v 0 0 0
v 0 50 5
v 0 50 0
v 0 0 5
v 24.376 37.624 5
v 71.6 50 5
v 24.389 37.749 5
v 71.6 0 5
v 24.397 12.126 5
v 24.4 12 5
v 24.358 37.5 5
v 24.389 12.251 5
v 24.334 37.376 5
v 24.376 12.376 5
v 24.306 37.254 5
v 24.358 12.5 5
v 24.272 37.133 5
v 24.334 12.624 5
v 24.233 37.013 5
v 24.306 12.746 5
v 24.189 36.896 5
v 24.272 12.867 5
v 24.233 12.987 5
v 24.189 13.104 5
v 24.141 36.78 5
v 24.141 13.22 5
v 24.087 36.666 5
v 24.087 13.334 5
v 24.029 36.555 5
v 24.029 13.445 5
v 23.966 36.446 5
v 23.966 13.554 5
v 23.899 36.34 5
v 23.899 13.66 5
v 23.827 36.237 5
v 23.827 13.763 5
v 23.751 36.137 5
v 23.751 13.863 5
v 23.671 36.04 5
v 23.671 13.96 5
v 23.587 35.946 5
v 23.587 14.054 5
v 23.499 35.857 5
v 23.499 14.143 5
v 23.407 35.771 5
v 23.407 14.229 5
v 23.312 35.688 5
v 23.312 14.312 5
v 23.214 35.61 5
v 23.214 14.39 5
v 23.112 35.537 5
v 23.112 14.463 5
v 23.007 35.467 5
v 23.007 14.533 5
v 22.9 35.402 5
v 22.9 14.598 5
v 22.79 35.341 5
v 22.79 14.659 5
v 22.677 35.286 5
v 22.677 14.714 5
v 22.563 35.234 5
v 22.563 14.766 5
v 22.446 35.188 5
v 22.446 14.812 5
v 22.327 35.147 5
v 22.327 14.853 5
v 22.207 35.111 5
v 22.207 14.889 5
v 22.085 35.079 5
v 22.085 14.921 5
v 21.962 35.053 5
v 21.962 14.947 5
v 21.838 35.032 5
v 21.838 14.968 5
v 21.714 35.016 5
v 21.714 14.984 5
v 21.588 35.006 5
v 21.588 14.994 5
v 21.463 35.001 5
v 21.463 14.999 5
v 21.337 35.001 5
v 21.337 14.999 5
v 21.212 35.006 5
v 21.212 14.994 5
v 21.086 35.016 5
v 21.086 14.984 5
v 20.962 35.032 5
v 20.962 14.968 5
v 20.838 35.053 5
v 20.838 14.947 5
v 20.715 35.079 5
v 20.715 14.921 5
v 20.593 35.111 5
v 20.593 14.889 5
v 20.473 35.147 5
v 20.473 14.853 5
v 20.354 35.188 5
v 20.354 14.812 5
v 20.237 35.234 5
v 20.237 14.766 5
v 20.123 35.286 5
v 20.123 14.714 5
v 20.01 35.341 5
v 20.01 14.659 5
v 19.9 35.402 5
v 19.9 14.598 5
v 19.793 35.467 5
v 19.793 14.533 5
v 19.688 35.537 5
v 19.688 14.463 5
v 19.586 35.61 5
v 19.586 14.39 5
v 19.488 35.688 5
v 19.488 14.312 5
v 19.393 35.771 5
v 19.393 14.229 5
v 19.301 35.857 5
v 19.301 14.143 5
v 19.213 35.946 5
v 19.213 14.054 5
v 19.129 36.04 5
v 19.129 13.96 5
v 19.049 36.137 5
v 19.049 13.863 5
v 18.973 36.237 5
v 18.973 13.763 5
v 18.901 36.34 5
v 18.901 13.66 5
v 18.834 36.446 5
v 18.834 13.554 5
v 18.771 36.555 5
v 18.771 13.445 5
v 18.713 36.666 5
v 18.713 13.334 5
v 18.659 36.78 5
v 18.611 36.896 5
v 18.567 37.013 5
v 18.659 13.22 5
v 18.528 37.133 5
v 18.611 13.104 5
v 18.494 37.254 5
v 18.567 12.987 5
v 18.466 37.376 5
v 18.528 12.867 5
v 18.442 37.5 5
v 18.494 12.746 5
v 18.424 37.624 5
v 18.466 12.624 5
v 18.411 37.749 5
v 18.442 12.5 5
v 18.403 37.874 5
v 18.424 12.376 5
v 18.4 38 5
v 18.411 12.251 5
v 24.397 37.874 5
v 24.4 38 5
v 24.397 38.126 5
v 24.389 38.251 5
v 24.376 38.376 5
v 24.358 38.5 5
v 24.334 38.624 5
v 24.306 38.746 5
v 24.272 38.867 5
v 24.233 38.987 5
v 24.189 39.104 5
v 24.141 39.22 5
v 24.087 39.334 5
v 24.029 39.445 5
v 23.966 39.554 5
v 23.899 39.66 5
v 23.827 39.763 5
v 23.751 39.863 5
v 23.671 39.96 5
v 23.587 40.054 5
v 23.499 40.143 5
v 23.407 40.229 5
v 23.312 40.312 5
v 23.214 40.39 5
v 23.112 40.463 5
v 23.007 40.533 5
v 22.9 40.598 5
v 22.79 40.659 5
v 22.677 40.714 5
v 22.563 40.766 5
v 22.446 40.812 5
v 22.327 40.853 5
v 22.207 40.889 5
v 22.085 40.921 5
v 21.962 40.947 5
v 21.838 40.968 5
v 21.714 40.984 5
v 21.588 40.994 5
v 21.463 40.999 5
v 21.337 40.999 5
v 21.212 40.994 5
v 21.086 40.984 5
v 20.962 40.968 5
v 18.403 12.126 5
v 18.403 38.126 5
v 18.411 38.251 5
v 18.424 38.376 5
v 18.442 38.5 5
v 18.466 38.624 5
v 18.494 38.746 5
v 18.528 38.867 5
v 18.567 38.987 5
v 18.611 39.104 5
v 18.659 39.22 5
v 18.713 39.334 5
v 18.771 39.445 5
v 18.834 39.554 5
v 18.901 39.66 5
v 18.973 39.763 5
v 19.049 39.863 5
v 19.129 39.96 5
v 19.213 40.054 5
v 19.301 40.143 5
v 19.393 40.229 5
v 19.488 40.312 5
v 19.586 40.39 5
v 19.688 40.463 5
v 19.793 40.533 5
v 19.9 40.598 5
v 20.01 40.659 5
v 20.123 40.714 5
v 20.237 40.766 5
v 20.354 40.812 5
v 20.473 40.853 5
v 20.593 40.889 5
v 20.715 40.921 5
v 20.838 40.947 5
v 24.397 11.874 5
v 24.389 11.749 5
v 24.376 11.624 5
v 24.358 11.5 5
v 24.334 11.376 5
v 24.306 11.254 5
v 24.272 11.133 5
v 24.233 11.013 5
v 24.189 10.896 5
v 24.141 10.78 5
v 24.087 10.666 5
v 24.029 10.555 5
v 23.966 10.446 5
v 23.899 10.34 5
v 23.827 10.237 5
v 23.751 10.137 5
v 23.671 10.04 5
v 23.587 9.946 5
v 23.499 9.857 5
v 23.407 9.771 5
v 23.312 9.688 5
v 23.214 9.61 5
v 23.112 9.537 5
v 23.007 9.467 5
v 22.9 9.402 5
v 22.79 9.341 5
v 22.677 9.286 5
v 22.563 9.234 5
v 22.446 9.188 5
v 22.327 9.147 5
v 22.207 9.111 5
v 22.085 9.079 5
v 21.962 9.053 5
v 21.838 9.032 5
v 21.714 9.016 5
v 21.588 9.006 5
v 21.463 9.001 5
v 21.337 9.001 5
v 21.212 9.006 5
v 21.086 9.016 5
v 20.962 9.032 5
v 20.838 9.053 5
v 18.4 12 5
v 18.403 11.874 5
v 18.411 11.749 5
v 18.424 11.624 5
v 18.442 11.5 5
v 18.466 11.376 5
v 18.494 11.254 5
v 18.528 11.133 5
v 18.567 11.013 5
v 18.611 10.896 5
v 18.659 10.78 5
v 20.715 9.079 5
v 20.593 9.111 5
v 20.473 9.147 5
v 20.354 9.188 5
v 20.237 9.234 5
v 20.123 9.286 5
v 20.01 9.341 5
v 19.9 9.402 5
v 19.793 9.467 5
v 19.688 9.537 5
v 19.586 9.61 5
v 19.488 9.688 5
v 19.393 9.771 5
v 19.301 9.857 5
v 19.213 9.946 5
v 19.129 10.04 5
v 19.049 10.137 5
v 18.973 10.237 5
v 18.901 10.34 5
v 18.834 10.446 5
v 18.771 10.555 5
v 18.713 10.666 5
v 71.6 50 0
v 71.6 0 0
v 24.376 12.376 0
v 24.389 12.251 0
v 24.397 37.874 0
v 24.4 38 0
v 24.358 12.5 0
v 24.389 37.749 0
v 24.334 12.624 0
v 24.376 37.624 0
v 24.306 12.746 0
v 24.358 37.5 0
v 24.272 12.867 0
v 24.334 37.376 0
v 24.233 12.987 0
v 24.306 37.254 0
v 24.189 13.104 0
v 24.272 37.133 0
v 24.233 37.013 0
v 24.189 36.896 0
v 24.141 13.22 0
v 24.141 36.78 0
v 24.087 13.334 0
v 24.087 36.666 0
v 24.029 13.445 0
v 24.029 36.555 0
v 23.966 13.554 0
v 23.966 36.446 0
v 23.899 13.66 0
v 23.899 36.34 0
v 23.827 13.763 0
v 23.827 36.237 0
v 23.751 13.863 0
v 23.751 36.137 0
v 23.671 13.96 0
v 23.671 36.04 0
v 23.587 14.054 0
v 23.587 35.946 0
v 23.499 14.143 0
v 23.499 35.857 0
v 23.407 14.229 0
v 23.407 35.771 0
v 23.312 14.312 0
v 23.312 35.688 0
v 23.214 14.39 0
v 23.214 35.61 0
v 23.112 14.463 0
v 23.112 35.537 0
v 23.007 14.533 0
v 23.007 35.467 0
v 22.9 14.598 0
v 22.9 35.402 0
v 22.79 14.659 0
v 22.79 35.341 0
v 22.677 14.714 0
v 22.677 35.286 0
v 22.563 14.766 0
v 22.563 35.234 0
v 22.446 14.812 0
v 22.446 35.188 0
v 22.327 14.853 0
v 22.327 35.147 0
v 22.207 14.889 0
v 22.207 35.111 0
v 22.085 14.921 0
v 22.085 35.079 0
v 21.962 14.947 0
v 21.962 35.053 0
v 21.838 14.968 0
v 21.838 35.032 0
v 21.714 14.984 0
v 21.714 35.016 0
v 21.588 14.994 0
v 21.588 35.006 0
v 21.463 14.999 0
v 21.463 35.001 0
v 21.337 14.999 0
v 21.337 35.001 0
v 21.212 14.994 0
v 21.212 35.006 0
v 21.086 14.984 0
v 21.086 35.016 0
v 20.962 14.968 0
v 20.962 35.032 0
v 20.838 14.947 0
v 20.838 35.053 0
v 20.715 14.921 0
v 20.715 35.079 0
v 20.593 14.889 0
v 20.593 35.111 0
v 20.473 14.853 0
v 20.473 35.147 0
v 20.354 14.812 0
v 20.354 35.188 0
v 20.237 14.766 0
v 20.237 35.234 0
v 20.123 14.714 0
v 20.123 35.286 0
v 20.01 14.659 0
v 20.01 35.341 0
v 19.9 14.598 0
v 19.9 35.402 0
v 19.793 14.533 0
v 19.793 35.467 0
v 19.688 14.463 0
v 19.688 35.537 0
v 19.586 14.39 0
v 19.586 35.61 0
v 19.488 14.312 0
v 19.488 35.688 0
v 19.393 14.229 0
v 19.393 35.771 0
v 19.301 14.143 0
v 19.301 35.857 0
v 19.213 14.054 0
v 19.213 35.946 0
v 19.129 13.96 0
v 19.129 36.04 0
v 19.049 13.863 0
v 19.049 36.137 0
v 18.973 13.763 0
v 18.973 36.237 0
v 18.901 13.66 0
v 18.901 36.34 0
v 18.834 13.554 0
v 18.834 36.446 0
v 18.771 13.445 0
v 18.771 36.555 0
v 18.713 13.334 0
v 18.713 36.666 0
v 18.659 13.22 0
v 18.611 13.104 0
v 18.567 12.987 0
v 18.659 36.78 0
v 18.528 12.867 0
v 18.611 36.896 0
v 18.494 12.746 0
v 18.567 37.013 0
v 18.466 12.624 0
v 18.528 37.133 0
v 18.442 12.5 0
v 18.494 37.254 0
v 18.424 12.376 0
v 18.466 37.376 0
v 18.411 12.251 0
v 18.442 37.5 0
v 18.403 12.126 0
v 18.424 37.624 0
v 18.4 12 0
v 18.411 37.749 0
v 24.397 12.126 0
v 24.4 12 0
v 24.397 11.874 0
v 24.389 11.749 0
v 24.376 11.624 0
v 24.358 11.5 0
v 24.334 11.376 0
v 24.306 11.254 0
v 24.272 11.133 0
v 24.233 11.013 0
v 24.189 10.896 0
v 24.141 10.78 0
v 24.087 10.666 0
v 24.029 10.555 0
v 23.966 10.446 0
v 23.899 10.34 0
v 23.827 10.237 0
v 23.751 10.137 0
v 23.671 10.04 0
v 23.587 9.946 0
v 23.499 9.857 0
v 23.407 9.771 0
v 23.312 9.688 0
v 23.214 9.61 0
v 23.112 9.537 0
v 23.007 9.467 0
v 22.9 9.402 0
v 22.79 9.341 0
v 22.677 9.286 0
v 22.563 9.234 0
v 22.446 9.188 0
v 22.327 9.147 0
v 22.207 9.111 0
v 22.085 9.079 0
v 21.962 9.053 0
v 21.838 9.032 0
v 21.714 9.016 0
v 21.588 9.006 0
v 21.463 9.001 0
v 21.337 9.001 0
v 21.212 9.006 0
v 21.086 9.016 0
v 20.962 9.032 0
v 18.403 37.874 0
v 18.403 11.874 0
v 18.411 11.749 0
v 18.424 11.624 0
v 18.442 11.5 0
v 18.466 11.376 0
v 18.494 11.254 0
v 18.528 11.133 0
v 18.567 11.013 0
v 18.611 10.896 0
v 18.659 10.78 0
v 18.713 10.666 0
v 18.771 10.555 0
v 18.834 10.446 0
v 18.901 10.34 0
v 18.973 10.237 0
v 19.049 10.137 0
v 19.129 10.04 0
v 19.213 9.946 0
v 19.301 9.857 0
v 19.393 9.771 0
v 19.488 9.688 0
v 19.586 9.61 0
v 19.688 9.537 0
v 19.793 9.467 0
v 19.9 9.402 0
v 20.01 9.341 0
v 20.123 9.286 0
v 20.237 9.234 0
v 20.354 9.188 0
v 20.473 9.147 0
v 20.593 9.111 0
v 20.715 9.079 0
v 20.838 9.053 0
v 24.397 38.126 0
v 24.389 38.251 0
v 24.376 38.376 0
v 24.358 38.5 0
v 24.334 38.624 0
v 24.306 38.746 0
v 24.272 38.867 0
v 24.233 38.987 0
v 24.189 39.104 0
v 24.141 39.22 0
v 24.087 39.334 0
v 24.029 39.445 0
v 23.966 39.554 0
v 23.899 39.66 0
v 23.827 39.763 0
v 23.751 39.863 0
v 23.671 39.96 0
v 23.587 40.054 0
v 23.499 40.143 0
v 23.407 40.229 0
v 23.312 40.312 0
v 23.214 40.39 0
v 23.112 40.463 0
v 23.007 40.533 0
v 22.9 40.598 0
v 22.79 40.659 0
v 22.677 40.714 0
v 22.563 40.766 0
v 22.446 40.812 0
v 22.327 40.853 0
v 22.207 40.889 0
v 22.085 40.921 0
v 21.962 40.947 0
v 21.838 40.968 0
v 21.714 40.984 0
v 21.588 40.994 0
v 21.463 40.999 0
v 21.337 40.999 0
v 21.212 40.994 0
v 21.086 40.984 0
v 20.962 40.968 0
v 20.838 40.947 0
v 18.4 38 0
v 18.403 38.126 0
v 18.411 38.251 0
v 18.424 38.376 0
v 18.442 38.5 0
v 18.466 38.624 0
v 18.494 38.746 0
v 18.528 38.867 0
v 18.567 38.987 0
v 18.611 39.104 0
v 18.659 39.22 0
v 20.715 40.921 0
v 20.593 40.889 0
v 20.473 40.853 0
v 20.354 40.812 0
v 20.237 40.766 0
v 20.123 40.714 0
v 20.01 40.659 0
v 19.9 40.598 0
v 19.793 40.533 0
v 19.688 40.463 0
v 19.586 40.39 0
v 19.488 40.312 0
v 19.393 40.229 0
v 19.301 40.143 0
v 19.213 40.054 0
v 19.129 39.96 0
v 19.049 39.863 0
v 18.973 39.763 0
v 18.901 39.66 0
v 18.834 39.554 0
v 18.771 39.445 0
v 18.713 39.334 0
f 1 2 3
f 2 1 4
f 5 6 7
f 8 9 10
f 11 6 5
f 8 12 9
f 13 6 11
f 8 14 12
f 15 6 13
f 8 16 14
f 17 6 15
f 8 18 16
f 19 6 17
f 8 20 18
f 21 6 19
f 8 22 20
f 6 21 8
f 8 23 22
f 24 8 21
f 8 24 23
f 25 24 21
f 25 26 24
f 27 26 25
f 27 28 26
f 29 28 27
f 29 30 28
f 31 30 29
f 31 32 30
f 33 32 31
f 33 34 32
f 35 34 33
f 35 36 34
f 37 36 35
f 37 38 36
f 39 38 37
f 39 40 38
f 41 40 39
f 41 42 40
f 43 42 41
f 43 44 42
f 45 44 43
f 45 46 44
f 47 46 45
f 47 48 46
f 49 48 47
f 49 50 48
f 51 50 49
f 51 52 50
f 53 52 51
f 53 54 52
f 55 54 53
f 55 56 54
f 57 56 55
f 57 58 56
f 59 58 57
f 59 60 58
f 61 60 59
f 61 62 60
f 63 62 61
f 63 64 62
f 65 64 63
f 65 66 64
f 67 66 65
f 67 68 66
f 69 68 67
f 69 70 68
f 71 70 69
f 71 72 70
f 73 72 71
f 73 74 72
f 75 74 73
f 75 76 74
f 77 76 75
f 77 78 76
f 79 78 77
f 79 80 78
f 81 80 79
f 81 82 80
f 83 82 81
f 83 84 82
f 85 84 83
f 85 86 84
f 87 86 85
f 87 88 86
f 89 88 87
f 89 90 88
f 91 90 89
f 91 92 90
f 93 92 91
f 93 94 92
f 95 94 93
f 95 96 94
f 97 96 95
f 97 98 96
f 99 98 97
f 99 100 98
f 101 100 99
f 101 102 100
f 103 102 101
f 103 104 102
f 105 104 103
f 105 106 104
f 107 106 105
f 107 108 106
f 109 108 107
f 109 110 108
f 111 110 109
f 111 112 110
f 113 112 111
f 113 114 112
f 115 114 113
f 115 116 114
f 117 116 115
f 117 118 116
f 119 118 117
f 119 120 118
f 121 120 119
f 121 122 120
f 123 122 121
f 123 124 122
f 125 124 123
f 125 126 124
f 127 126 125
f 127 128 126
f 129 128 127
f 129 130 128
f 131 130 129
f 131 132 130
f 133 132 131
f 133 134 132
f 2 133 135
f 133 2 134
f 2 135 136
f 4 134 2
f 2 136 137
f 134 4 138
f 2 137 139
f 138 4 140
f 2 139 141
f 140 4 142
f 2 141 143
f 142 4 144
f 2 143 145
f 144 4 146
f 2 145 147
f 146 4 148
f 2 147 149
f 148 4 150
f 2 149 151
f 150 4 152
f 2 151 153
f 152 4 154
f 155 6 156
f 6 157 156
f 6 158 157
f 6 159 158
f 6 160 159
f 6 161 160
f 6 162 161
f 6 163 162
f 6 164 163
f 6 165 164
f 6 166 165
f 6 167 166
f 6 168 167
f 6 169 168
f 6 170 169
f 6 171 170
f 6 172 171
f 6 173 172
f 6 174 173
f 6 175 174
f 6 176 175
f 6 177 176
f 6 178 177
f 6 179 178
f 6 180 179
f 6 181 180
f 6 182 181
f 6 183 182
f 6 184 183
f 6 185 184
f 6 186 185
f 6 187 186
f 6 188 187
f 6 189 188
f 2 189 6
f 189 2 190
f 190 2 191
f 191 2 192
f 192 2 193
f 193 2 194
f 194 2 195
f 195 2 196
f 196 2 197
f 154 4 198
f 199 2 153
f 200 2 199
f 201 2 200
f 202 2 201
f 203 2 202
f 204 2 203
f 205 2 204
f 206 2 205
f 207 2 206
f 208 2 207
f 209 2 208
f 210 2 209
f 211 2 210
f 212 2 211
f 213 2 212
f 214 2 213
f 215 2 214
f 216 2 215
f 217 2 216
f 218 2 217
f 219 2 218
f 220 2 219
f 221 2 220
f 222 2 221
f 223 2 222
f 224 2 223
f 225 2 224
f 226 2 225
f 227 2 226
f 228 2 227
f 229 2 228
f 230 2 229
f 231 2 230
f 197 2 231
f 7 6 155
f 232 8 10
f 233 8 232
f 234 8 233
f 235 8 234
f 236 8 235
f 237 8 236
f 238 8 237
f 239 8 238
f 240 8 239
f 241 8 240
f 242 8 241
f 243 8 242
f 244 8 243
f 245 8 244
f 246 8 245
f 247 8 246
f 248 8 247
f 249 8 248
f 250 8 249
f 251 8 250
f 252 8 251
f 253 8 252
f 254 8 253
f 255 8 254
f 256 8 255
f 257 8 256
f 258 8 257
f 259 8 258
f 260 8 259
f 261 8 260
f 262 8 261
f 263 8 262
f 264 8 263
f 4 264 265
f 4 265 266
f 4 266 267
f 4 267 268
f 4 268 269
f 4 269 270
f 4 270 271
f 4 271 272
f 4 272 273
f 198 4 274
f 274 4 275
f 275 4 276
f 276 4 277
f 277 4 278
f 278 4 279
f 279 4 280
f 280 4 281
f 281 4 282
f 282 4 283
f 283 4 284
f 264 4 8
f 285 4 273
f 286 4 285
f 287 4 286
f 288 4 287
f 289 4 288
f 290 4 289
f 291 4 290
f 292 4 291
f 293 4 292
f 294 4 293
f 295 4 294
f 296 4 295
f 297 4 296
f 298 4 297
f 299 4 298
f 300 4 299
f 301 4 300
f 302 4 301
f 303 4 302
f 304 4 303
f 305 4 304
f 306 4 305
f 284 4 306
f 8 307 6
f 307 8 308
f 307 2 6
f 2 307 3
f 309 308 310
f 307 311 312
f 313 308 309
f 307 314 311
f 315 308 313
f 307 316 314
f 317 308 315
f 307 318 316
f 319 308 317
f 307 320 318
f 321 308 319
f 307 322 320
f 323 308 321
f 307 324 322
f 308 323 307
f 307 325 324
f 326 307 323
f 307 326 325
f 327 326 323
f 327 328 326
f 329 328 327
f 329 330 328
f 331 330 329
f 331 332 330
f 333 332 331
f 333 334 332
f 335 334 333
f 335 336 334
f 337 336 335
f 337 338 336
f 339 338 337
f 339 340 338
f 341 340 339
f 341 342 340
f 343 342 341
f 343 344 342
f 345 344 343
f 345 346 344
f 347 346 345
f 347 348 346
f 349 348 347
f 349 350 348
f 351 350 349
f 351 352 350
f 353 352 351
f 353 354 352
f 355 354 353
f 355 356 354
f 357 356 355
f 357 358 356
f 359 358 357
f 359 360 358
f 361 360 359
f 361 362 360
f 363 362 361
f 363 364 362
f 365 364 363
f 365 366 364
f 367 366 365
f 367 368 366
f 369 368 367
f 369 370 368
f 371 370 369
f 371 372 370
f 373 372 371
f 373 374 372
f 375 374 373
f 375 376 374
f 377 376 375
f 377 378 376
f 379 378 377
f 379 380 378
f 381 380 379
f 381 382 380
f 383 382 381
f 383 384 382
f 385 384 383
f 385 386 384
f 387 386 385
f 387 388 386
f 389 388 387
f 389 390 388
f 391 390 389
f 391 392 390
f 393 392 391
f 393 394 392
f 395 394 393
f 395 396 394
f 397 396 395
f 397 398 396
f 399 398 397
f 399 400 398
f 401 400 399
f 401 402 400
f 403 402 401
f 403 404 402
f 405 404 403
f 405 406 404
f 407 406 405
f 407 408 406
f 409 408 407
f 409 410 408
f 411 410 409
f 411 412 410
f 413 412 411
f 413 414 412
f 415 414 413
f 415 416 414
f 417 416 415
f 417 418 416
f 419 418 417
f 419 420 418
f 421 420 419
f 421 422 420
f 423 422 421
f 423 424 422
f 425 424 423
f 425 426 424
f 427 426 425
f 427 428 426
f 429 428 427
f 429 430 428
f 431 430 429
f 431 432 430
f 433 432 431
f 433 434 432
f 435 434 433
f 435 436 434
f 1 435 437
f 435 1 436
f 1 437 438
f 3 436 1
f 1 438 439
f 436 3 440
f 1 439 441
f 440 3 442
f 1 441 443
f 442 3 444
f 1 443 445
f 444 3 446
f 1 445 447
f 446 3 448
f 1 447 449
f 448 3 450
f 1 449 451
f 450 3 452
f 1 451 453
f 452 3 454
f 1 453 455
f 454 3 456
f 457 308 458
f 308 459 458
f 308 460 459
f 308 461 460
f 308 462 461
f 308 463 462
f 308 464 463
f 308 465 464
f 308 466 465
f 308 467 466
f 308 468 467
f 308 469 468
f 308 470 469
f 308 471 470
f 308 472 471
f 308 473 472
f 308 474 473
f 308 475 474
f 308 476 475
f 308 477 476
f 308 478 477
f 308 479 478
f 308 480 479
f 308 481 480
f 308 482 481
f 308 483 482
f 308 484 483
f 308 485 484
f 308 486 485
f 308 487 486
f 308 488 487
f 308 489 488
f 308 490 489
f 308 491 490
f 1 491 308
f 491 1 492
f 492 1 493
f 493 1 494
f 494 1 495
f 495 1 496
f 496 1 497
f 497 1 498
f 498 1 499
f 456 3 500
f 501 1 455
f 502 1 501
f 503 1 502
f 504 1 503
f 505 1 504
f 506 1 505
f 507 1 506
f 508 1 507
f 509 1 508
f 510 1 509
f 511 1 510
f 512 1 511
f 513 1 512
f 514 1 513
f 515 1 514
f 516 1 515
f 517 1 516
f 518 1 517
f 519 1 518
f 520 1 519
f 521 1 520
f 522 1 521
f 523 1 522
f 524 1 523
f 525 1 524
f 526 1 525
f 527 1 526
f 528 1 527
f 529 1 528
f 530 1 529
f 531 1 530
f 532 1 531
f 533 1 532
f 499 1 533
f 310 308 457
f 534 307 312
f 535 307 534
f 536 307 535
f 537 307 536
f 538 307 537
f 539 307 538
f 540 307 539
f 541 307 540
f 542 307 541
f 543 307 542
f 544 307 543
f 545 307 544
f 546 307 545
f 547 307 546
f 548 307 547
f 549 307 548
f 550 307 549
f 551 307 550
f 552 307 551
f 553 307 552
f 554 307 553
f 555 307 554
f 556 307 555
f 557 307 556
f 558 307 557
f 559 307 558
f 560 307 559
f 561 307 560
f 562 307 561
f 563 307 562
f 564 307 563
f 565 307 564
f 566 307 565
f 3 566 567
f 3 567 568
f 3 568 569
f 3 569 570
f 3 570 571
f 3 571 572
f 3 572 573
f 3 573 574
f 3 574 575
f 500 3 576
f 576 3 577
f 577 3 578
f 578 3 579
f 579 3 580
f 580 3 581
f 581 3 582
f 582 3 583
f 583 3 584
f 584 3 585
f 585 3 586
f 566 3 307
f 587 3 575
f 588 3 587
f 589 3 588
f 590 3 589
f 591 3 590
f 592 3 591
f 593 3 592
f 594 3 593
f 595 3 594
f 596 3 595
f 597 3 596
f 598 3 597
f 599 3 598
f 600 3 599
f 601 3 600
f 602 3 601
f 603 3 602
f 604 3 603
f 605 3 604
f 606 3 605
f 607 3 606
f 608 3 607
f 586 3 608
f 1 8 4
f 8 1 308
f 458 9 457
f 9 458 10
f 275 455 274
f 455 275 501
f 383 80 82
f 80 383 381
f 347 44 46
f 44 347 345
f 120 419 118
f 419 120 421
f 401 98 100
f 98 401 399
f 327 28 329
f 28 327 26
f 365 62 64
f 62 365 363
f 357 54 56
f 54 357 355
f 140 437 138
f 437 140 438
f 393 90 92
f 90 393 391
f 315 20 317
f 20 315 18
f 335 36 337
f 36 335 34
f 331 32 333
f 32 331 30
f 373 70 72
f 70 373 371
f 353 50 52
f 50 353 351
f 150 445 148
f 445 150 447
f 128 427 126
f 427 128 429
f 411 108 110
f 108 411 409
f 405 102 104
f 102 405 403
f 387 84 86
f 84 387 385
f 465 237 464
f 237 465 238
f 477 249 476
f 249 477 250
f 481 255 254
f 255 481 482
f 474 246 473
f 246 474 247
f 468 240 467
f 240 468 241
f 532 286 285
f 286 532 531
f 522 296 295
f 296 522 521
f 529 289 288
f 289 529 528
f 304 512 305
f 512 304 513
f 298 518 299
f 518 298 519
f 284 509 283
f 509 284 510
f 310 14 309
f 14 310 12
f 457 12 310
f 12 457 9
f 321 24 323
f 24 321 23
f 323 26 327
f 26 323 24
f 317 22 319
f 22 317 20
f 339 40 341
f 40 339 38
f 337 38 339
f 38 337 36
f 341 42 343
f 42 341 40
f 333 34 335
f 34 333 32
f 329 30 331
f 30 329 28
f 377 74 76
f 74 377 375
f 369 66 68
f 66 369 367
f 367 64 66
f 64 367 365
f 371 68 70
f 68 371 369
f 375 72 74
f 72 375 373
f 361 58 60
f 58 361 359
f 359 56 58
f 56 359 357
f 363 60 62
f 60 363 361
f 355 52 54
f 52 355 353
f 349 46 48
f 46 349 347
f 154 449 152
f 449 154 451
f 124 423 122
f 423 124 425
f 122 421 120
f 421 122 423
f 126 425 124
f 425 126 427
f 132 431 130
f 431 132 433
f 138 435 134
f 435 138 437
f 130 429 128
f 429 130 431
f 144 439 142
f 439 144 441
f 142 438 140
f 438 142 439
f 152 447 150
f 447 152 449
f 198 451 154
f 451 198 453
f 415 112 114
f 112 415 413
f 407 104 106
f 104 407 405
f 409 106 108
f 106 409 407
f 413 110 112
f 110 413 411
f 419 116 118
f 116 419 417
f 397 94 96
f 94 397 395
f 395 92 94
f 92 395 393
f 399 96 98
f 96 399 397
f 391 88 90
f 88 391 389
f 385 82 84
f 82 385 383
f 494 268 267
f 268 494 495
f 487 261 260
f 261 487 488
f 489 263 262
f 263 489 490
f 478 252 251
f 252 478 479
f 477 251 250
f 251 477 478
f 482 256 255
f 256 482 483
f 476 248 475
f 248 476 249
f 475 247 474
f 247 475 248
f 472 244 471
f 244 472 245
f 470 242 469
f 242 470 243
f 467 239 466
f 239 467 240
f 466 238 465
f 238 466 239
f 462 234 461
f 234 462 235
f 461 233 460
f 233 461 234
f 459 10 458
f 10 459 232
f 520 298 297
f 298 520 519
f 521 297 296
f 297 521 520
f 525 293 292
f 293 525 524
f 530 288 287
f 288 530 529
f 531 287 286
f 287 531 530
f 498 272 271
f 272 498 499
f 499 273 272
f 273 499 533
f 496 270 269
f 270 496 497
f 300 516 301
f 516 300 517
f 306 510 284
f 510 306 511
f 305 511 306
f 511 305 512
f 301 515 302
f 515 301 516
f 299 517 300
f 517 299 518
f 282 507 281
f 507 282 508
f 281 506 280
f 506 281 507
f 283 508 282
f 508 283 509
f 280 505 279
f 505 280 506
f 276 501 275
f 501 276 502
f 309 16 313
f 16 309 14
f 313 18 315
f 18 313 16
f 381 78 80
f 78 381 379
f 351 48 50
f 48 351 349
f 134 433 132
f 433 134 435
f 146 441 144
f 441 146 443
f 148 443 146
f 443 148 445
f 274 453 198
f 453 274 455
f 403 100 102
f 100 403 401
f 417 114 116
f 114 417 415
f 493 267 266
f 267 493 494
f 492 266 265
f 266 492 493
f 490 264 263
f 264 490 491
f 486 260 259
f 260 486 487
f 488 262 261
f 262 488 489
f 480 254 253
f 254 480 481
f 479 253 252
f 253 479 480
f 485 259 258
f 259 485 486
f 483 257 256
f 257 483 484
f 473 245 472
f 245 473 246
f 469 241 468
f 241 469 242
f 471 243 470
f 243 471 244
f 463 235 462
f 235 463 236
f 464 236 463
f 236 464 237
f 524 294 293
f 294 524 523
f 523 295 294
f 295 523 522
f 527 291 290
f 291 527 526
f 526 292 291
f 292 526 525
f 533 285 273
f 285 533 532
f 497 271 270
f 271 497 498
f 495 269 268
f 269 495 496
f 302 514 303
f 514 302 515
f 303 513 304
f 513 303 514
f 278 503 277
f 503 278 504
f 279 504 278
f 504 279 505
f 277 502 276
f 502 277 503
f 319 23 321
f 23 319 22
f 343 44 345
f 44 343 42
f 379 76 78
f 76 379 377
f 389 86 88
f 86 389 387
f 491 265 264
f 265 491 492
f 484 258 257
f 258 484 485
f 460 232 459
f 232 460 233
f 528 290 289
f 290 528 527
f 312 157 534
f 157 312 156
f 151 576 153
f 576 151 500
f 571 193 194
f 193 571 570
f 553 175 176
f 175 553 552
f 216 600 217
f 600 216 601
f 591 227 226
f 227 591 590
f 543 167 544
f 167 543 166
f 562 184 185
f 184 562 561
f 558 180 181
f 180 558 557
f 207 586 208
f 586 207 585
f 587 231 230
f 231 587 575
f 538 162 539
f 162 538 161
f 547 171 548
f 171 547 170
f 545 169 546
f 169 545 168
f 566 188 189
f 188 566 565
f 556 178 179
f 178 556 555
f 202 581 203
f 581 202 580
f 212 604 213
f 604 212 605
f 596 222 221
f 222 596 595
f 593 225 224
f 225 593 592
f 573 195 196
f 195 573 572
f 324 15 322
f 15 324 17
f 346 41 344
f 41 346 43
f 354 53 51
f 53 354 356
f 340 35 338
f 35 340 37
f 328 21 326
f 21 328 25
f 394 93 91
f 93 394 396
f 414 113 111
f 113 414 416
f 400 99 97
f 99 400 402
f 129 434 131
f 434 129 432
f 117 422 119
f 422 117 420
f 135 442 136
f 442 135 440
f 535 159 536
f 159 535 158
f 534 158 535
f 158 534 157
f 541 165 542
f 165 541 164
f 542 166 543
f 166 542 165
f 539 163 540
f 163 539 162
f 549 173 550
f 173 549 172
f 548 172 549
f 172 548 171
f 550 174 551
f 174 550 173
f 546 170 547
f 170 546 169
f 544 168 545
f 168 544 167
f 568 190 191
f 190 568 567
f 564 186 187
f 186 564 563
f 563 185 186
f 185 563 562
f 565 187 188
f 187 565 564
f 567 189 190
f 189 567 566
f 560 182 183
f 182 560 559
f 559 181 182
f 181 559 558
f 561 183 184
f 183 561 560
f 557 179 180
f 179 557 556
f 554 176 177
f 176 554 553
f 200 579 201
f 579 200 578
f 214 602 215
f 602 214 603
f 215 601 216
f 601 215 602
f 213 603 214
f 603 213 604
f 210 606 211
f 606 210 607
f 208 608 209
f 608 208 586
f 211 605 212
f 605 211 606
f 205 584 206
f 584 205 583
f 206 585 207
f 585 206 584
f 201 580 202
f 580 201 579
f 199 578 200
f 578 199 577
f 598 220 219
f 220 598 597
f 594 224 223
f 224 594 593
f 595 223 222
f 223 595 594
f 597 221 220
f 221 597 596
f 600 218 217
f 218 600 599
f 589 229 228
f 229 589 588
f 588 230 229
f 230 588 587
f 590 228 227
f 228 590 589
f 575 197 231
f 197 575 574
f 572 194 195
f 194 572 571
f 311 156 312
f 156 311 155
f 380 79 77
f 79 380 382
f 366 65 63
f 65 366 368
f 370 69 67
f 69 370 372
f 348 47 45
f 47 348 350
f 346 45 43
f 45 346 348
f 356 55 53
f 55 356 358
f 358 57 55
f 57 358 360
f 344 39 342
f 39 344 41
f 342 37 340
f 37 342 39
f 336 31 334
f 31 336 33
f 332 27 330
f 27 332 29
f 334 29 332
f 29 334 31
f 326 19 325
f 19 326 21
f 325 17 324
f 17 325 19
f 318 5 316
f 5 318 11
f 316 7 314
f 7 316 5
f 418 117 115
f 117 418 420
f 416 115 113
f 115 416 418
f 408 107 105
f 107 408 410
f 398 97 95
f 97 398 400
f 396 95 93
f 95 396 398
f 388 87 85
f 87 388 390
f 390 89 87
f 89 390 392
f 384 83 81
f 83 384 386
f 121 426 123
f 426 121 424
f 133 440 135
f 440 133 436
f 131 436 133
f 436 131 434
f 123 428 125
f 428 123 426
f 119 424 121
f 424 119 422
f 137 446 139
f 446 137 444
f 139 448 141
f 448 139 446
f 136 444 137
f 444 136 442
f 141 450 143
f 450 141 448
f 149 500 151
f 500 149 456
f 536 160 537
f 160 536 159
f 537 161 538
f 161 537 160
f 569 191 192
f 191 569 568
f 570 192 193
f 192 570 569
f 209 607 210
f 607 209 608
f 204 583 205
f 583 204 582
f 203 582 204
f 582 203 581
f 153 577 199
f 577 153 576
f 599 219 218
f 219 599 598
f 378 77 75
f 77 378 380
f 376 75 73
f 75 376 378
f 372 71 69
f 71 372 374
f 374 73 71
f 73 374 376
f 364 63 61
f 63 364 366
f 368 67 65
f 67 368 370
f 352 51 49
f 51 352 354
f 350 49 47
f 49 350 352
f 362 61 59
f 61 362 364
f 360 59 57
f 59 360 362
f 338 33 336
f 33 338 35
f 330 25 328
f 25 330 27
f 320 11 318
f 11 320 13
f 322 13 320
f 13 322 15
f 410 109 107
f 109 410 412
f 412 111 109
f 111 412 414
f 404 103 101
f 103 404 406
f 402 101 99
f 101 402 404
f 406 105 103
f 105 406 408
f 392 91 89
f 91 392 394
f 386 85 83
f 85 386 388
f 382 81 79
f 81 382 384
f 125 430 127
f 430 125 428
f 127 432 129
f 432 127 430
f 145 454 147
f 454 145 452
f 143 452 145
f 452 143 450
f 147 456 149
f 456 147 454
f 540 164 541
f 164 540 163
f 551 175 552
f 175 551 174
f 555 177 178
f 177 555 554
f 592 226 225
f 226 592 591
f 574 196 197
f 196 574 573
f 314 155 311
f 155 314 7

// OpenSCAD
a=71.60;
difference(){
    cube([a,50,5]);
    #translate([18.4+6/2,(50-6-20)/2,0])cylinder(5,6/2,6/2,$fn=150);
    #translate([18.4+6/2,(50-6-20)/2+6+20,0])cylinder(5,6/2,6/2,$fn=150);
}
